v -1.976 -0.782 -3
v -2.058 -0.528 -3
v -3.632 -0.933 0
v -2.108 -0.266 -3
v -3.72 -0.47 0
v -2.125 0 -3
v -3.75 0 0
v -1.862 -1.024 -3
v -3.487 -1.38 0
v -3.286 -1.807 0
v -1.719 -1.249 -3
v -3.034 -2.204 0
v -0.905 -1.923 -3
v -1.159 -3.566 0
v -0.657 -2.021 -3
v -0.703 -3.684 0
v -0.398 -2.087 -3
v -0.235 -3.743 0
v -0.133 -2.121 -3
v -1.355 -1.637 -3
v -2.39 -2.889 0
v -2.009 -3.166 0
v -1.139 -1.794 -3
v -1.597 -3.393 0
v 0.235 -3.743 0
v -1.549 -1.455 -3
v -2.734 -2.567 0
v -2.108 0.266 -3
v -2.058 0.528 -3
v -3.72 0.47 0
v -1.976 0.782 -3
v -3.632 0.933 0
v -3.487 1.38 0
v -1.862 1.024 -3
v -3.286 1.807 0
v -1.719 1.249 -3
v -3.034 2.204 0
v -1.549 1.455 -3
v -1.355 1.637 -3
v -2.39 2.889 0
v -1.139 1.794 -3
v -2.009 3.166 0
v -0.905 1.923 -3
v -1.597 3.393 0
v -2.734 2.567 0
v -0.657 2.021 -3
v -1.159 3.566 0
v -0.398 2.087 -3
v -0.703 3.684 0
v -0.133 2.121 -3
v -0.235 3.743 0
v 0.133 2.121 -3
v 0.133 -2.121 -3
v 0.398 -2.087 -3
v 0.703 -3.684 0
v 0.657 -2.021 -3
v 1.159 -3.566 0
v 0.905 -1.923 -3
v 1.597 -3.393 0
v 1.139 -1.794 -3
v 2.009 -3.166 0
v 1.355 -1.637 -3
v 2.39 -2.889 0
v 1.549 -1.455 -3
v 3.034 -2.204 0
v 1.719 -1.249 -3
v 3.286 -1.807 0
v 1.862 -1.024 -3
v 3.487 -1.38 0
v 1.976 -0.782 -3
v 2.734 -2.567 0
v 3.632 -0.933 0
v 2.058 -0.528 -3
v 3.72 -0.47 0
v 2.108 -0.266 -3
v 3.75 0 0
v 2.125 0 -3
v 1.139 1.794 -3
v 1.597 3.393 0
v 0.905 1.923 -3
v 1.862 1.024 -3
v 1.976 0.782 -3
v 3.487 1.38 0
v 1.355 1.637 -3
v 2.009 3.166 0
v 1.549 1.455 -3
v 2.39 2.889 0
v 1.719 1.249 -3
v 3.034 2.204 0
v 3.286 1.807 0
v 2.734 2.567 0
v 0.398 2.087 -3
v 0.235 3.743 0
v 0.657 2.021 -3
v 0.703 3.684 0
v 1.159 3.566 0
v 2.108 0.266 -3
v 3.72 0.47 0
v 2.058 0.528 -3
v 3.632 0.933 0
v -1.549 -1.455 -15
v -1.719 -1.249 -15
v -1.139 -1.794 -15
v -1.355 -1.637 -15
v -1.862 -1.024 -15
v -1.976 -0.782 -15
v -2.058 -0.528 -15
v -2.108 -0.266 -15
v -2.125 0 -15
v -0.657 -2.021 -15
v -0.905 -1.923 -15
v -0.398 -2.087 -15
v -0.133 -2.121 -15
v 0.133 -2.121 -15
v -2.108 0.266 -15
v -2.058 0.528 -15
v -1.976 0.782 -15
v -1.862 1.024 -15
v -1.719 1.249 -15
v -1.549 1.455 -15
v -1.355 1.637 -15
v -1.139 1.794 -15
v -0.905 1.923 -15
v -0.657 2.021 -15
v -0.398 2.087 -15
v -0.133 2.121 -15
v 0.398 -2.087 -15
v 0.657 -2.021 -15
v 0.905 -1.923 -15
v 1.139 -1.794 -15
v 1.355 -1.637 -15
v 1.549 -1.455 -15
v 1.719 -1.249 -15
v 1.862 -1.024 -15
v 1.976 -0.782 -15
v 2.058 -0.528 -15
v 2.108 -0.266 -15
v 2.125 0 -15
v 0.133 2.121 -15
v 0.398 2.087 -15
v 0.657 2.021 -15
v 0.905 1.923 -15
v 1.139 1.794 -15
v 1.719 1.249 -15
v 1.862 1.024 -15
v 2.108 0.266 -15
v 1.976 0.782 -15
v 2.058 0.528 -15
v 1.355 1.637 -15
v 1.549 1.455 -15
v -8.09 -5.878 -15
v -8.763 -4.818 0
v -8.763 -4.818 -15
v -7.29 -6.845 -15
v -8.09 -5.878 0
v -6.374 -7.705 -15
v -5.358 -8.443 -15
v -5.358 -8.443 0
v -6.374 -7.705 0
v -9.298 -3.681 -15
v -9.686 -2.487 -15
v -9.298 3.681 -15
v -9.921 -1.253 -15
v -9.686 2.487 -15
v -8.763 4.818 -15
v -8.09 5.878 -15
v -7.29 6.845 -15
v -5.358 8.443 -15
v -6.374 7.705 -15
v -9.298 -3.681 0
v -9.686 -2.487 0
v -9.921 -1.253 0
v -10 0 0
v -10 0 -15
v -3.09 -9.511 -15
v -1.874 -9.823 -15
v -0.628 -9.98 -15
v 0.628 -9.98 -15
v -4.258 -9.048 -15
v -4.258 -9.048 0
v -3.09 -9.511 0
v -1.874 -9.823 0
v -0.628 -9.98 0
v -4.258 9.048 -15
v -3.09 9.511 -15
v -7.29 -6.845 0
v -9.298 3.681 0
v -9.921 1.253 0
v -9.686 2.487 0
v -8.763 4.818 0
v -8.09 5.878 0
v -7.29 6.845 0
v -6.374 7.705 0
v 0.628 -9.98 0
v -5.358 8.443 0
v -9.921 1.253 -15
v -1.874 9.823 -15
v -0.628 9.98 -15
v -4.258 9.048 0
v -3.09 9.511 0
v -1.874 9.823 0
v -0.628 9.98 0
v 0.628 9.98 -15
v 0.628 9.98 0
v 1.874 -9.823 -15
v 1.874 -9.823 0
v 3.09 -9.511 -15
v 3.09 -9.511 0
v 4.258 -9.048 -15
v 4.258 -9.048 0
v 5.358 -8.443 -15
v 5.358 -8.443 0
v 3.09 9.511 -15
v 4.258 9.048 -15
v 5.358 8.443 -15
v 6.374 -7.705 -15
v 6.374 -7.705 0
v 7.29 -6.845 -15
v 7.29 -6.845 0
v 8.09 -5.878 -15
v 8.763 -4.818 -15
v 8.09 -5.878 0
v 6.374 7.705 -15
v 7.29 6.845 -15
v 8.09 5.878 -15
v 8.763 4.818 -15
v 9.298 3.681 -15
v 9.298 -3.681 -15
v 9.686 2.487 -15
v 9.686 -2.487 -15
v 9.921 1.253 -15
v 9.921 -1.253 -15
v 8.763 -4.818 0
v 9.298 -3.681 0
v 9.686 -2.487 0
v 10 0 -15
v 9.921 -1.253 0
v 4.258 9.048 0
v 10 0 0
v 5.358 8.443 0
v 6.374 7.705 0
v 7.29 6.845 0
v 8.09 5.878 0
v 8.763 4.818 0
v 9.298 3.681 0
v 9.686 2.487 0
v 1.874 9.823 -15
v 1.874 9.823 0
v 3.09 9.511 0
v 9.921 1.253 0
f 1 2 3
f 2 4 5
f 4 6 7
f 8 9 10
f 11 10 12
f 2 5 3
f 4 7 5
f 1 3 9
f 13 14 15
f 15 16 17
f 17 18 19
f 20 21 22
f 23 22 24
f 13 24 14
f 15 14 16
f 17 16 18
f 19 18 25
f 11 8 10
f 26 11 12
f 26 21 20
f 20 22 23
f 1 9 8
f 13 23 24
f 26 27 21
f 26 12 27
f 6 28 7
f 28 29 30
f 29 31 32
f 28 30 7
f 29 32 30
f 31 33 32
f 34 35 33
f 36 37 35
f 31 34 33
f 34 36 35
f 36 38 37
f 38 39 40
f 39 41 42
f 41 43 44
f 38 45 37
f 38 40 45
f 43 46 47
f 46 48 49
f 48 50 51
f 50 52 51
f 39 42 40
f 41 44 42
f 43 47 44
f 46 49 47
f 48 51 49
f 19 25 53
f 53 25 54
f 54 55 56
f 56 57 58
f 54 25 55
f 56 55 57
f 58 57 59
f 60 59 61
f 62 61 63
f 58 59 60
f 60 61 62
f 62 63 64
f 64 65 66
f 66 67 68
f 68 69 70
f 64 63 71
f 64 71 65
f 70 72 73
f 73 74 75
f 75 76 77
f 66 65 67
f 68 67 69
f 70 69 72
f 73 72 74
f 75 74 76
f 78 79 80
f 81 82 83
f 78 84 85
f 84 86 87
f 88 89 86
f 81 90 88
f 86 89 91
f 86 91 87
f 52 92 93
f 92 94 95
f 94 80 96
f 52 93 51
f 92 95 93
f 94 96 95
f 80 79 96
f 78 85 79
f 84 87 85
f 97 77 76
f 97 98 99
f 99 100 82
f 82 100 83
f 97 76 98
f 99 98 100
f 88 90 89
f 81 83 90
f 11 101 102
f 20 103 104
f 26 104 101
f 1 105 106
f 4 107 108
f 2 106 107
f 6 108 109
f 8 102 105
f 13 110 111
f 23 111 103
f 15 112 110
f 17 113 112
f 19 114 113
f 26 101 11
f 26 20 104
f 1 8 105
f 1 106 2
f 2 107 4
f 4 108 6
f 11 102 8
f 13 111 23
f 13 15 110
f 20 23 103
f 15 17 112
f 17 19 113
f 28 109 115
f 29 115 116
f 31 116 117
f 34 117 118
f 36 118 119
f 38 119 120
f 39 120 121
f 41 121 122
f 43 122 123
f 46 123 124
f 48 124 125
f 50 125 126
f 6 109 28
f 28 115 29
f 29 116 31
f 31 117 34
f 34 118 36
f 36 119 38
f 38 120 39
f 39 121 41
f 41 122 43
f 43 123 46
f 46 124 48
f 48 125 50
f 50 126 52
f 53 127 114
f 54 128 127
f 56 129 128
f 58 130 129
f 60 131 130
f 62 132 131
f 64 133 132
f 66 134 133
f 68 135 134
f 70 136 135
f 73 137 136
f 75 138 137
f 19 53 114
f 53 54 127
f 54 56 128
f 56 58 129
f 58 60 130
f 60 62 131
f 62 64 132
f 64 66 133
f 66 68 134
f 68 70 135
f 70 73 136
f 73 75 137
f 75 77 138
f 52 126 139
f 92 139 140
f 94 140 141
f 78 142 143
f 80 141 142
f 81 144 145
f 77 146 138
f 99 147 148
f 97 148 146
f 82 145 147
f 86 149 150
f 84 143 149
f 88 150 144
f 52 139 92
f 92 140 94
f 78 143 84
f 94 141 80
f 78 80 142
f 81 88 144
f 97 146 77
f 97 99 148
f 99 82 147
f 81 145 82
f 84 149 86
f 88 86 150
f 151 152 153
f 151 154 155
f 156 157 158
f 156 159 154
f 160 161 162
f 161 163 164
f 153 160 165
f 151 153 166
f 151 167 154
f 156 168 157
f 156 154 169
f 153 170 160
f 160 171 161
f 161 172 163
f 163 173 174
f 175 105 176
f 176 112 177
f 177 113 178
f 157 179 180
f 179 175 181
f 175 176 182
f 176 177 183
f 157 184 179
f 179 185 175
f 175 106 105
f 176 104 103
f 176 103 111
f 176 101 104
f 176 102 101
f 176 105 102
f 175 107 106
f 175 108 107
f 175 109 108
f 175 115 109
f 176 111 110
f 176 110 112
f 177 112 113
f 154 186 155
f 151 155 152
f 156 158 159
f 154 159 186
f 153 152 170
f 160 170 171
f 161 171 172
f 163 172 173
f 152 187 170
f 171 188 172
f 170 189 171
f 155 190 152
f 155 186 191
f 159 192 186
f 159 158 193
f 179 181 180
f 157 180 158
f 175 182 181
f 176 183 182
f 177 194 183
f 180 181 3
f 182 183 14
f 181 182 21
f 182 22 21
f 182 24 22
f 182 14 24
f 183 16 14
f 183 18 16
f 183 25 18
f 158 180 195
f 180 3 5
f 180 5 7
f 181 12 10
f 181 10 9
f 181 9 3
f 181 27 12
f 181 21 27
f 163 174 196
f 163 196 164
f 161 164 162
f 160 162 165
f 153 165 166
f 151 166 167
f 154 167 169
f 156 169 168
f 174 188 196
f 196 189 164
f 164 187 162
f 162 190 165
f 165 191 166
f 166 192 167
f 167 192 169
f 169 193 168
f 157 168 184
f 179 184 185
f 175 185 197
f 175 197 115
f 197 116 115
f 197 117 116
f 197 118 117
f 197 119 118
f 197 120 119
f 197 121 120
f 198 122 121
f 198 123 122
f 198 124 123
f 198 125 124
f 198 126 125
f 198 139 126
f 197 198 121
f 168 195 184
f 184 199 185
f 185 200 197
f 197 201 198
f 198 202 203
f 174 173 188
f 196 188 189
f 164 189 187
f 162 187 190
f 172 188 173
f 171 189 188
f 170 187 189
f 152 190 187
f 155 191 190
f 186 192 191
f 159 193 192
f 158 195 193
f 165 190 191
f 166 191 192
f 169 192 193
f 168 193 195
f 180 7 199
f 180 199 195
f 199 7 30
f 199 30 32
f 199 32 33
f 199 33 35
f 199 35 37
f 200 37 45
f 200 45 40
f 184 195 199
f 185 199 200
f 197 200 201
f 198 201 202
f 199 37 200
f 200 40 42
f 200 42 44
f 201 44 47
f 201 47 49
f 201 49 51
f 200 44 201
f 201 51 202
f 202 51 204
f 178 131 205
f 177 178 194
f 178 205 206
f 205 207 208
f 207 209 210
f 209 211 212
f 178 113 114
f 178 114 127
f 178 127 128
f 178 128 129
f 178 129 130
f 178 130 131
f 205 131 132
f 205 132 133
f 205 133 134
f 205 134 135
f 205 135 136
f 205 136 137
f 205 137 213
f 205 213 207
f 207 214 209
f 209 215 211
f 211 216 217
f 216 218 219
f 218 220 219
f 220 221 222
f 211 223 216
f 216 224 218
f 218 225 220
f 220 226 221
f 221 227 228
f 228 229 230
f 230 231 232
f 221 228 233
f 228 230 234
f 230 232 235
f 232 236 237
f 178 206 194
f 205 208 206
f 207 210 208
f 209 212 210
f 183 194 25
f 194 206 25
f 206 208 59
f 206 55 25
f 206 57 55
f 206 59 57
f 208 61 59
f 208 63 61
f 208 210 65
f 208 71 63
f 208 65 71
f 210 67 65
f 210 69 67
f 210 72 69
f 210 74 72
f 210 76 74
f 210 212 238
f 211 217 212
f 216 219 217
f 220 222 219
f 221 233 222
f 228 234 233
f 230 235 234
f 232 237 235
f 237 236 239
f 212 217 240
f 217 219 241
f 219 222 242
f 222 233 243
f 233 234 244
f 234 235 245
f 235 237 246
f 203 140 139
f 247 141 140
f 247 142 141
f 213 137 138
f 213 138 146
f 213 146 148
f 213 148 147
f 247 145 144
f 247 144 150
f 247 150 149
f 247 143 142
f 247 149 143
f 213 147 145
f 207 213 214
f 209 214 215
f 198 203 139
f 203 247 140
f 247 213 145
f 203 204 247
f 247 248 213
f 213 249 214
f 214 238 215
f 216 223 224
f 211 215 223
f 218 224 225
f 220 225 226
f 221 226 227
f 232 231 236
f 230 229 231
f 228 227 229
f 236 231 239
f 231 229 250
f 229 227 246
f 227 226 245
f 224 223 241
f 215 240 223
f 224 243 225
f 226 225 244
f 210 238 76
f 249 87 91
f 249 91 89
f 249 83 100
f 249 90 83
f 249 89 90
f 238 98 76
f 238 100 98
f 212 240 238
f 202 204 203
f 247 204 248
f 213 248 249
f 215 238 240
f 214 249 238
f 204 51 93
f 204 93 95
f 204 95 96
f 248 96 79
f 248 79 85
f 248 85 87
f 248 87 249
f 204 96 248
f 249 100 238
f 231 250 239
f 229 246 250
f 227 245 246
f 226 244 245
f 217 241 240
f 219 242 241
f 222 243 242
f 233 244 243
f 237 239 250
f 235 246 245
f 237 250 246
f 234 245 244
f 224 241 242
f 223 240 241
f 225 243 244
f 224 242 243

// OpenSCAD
$fn = 50;

difference() {
	union() {
		translate(v = [0, 0, -15.0]) {
			cylinder(h = 15, r = 10.0);
		}
	}
	union() {
		translate(v = [0, 0, 0]) {
			rotate(a = [0, 0, 0]) {
				difference() {
					union() {
						translate(v = [0, 0, -18.0]) {
							cylinder(h = 18, r = 2.0);
						}
						translate(v = [0, 0, -3]) {
							cylinder(h = 3, r1 = 2.125, r2 = 3.75);
						}
						translate(v = [0, 0, -18.0]) {
							cylinder(h = 18, r = 2.125);
						}
						translate(v = [0, 0, -18.0]) {
							cylinder(h = 18, r = 2.0);
						}
					}
					union();
				}
			}
		}
	}
}
